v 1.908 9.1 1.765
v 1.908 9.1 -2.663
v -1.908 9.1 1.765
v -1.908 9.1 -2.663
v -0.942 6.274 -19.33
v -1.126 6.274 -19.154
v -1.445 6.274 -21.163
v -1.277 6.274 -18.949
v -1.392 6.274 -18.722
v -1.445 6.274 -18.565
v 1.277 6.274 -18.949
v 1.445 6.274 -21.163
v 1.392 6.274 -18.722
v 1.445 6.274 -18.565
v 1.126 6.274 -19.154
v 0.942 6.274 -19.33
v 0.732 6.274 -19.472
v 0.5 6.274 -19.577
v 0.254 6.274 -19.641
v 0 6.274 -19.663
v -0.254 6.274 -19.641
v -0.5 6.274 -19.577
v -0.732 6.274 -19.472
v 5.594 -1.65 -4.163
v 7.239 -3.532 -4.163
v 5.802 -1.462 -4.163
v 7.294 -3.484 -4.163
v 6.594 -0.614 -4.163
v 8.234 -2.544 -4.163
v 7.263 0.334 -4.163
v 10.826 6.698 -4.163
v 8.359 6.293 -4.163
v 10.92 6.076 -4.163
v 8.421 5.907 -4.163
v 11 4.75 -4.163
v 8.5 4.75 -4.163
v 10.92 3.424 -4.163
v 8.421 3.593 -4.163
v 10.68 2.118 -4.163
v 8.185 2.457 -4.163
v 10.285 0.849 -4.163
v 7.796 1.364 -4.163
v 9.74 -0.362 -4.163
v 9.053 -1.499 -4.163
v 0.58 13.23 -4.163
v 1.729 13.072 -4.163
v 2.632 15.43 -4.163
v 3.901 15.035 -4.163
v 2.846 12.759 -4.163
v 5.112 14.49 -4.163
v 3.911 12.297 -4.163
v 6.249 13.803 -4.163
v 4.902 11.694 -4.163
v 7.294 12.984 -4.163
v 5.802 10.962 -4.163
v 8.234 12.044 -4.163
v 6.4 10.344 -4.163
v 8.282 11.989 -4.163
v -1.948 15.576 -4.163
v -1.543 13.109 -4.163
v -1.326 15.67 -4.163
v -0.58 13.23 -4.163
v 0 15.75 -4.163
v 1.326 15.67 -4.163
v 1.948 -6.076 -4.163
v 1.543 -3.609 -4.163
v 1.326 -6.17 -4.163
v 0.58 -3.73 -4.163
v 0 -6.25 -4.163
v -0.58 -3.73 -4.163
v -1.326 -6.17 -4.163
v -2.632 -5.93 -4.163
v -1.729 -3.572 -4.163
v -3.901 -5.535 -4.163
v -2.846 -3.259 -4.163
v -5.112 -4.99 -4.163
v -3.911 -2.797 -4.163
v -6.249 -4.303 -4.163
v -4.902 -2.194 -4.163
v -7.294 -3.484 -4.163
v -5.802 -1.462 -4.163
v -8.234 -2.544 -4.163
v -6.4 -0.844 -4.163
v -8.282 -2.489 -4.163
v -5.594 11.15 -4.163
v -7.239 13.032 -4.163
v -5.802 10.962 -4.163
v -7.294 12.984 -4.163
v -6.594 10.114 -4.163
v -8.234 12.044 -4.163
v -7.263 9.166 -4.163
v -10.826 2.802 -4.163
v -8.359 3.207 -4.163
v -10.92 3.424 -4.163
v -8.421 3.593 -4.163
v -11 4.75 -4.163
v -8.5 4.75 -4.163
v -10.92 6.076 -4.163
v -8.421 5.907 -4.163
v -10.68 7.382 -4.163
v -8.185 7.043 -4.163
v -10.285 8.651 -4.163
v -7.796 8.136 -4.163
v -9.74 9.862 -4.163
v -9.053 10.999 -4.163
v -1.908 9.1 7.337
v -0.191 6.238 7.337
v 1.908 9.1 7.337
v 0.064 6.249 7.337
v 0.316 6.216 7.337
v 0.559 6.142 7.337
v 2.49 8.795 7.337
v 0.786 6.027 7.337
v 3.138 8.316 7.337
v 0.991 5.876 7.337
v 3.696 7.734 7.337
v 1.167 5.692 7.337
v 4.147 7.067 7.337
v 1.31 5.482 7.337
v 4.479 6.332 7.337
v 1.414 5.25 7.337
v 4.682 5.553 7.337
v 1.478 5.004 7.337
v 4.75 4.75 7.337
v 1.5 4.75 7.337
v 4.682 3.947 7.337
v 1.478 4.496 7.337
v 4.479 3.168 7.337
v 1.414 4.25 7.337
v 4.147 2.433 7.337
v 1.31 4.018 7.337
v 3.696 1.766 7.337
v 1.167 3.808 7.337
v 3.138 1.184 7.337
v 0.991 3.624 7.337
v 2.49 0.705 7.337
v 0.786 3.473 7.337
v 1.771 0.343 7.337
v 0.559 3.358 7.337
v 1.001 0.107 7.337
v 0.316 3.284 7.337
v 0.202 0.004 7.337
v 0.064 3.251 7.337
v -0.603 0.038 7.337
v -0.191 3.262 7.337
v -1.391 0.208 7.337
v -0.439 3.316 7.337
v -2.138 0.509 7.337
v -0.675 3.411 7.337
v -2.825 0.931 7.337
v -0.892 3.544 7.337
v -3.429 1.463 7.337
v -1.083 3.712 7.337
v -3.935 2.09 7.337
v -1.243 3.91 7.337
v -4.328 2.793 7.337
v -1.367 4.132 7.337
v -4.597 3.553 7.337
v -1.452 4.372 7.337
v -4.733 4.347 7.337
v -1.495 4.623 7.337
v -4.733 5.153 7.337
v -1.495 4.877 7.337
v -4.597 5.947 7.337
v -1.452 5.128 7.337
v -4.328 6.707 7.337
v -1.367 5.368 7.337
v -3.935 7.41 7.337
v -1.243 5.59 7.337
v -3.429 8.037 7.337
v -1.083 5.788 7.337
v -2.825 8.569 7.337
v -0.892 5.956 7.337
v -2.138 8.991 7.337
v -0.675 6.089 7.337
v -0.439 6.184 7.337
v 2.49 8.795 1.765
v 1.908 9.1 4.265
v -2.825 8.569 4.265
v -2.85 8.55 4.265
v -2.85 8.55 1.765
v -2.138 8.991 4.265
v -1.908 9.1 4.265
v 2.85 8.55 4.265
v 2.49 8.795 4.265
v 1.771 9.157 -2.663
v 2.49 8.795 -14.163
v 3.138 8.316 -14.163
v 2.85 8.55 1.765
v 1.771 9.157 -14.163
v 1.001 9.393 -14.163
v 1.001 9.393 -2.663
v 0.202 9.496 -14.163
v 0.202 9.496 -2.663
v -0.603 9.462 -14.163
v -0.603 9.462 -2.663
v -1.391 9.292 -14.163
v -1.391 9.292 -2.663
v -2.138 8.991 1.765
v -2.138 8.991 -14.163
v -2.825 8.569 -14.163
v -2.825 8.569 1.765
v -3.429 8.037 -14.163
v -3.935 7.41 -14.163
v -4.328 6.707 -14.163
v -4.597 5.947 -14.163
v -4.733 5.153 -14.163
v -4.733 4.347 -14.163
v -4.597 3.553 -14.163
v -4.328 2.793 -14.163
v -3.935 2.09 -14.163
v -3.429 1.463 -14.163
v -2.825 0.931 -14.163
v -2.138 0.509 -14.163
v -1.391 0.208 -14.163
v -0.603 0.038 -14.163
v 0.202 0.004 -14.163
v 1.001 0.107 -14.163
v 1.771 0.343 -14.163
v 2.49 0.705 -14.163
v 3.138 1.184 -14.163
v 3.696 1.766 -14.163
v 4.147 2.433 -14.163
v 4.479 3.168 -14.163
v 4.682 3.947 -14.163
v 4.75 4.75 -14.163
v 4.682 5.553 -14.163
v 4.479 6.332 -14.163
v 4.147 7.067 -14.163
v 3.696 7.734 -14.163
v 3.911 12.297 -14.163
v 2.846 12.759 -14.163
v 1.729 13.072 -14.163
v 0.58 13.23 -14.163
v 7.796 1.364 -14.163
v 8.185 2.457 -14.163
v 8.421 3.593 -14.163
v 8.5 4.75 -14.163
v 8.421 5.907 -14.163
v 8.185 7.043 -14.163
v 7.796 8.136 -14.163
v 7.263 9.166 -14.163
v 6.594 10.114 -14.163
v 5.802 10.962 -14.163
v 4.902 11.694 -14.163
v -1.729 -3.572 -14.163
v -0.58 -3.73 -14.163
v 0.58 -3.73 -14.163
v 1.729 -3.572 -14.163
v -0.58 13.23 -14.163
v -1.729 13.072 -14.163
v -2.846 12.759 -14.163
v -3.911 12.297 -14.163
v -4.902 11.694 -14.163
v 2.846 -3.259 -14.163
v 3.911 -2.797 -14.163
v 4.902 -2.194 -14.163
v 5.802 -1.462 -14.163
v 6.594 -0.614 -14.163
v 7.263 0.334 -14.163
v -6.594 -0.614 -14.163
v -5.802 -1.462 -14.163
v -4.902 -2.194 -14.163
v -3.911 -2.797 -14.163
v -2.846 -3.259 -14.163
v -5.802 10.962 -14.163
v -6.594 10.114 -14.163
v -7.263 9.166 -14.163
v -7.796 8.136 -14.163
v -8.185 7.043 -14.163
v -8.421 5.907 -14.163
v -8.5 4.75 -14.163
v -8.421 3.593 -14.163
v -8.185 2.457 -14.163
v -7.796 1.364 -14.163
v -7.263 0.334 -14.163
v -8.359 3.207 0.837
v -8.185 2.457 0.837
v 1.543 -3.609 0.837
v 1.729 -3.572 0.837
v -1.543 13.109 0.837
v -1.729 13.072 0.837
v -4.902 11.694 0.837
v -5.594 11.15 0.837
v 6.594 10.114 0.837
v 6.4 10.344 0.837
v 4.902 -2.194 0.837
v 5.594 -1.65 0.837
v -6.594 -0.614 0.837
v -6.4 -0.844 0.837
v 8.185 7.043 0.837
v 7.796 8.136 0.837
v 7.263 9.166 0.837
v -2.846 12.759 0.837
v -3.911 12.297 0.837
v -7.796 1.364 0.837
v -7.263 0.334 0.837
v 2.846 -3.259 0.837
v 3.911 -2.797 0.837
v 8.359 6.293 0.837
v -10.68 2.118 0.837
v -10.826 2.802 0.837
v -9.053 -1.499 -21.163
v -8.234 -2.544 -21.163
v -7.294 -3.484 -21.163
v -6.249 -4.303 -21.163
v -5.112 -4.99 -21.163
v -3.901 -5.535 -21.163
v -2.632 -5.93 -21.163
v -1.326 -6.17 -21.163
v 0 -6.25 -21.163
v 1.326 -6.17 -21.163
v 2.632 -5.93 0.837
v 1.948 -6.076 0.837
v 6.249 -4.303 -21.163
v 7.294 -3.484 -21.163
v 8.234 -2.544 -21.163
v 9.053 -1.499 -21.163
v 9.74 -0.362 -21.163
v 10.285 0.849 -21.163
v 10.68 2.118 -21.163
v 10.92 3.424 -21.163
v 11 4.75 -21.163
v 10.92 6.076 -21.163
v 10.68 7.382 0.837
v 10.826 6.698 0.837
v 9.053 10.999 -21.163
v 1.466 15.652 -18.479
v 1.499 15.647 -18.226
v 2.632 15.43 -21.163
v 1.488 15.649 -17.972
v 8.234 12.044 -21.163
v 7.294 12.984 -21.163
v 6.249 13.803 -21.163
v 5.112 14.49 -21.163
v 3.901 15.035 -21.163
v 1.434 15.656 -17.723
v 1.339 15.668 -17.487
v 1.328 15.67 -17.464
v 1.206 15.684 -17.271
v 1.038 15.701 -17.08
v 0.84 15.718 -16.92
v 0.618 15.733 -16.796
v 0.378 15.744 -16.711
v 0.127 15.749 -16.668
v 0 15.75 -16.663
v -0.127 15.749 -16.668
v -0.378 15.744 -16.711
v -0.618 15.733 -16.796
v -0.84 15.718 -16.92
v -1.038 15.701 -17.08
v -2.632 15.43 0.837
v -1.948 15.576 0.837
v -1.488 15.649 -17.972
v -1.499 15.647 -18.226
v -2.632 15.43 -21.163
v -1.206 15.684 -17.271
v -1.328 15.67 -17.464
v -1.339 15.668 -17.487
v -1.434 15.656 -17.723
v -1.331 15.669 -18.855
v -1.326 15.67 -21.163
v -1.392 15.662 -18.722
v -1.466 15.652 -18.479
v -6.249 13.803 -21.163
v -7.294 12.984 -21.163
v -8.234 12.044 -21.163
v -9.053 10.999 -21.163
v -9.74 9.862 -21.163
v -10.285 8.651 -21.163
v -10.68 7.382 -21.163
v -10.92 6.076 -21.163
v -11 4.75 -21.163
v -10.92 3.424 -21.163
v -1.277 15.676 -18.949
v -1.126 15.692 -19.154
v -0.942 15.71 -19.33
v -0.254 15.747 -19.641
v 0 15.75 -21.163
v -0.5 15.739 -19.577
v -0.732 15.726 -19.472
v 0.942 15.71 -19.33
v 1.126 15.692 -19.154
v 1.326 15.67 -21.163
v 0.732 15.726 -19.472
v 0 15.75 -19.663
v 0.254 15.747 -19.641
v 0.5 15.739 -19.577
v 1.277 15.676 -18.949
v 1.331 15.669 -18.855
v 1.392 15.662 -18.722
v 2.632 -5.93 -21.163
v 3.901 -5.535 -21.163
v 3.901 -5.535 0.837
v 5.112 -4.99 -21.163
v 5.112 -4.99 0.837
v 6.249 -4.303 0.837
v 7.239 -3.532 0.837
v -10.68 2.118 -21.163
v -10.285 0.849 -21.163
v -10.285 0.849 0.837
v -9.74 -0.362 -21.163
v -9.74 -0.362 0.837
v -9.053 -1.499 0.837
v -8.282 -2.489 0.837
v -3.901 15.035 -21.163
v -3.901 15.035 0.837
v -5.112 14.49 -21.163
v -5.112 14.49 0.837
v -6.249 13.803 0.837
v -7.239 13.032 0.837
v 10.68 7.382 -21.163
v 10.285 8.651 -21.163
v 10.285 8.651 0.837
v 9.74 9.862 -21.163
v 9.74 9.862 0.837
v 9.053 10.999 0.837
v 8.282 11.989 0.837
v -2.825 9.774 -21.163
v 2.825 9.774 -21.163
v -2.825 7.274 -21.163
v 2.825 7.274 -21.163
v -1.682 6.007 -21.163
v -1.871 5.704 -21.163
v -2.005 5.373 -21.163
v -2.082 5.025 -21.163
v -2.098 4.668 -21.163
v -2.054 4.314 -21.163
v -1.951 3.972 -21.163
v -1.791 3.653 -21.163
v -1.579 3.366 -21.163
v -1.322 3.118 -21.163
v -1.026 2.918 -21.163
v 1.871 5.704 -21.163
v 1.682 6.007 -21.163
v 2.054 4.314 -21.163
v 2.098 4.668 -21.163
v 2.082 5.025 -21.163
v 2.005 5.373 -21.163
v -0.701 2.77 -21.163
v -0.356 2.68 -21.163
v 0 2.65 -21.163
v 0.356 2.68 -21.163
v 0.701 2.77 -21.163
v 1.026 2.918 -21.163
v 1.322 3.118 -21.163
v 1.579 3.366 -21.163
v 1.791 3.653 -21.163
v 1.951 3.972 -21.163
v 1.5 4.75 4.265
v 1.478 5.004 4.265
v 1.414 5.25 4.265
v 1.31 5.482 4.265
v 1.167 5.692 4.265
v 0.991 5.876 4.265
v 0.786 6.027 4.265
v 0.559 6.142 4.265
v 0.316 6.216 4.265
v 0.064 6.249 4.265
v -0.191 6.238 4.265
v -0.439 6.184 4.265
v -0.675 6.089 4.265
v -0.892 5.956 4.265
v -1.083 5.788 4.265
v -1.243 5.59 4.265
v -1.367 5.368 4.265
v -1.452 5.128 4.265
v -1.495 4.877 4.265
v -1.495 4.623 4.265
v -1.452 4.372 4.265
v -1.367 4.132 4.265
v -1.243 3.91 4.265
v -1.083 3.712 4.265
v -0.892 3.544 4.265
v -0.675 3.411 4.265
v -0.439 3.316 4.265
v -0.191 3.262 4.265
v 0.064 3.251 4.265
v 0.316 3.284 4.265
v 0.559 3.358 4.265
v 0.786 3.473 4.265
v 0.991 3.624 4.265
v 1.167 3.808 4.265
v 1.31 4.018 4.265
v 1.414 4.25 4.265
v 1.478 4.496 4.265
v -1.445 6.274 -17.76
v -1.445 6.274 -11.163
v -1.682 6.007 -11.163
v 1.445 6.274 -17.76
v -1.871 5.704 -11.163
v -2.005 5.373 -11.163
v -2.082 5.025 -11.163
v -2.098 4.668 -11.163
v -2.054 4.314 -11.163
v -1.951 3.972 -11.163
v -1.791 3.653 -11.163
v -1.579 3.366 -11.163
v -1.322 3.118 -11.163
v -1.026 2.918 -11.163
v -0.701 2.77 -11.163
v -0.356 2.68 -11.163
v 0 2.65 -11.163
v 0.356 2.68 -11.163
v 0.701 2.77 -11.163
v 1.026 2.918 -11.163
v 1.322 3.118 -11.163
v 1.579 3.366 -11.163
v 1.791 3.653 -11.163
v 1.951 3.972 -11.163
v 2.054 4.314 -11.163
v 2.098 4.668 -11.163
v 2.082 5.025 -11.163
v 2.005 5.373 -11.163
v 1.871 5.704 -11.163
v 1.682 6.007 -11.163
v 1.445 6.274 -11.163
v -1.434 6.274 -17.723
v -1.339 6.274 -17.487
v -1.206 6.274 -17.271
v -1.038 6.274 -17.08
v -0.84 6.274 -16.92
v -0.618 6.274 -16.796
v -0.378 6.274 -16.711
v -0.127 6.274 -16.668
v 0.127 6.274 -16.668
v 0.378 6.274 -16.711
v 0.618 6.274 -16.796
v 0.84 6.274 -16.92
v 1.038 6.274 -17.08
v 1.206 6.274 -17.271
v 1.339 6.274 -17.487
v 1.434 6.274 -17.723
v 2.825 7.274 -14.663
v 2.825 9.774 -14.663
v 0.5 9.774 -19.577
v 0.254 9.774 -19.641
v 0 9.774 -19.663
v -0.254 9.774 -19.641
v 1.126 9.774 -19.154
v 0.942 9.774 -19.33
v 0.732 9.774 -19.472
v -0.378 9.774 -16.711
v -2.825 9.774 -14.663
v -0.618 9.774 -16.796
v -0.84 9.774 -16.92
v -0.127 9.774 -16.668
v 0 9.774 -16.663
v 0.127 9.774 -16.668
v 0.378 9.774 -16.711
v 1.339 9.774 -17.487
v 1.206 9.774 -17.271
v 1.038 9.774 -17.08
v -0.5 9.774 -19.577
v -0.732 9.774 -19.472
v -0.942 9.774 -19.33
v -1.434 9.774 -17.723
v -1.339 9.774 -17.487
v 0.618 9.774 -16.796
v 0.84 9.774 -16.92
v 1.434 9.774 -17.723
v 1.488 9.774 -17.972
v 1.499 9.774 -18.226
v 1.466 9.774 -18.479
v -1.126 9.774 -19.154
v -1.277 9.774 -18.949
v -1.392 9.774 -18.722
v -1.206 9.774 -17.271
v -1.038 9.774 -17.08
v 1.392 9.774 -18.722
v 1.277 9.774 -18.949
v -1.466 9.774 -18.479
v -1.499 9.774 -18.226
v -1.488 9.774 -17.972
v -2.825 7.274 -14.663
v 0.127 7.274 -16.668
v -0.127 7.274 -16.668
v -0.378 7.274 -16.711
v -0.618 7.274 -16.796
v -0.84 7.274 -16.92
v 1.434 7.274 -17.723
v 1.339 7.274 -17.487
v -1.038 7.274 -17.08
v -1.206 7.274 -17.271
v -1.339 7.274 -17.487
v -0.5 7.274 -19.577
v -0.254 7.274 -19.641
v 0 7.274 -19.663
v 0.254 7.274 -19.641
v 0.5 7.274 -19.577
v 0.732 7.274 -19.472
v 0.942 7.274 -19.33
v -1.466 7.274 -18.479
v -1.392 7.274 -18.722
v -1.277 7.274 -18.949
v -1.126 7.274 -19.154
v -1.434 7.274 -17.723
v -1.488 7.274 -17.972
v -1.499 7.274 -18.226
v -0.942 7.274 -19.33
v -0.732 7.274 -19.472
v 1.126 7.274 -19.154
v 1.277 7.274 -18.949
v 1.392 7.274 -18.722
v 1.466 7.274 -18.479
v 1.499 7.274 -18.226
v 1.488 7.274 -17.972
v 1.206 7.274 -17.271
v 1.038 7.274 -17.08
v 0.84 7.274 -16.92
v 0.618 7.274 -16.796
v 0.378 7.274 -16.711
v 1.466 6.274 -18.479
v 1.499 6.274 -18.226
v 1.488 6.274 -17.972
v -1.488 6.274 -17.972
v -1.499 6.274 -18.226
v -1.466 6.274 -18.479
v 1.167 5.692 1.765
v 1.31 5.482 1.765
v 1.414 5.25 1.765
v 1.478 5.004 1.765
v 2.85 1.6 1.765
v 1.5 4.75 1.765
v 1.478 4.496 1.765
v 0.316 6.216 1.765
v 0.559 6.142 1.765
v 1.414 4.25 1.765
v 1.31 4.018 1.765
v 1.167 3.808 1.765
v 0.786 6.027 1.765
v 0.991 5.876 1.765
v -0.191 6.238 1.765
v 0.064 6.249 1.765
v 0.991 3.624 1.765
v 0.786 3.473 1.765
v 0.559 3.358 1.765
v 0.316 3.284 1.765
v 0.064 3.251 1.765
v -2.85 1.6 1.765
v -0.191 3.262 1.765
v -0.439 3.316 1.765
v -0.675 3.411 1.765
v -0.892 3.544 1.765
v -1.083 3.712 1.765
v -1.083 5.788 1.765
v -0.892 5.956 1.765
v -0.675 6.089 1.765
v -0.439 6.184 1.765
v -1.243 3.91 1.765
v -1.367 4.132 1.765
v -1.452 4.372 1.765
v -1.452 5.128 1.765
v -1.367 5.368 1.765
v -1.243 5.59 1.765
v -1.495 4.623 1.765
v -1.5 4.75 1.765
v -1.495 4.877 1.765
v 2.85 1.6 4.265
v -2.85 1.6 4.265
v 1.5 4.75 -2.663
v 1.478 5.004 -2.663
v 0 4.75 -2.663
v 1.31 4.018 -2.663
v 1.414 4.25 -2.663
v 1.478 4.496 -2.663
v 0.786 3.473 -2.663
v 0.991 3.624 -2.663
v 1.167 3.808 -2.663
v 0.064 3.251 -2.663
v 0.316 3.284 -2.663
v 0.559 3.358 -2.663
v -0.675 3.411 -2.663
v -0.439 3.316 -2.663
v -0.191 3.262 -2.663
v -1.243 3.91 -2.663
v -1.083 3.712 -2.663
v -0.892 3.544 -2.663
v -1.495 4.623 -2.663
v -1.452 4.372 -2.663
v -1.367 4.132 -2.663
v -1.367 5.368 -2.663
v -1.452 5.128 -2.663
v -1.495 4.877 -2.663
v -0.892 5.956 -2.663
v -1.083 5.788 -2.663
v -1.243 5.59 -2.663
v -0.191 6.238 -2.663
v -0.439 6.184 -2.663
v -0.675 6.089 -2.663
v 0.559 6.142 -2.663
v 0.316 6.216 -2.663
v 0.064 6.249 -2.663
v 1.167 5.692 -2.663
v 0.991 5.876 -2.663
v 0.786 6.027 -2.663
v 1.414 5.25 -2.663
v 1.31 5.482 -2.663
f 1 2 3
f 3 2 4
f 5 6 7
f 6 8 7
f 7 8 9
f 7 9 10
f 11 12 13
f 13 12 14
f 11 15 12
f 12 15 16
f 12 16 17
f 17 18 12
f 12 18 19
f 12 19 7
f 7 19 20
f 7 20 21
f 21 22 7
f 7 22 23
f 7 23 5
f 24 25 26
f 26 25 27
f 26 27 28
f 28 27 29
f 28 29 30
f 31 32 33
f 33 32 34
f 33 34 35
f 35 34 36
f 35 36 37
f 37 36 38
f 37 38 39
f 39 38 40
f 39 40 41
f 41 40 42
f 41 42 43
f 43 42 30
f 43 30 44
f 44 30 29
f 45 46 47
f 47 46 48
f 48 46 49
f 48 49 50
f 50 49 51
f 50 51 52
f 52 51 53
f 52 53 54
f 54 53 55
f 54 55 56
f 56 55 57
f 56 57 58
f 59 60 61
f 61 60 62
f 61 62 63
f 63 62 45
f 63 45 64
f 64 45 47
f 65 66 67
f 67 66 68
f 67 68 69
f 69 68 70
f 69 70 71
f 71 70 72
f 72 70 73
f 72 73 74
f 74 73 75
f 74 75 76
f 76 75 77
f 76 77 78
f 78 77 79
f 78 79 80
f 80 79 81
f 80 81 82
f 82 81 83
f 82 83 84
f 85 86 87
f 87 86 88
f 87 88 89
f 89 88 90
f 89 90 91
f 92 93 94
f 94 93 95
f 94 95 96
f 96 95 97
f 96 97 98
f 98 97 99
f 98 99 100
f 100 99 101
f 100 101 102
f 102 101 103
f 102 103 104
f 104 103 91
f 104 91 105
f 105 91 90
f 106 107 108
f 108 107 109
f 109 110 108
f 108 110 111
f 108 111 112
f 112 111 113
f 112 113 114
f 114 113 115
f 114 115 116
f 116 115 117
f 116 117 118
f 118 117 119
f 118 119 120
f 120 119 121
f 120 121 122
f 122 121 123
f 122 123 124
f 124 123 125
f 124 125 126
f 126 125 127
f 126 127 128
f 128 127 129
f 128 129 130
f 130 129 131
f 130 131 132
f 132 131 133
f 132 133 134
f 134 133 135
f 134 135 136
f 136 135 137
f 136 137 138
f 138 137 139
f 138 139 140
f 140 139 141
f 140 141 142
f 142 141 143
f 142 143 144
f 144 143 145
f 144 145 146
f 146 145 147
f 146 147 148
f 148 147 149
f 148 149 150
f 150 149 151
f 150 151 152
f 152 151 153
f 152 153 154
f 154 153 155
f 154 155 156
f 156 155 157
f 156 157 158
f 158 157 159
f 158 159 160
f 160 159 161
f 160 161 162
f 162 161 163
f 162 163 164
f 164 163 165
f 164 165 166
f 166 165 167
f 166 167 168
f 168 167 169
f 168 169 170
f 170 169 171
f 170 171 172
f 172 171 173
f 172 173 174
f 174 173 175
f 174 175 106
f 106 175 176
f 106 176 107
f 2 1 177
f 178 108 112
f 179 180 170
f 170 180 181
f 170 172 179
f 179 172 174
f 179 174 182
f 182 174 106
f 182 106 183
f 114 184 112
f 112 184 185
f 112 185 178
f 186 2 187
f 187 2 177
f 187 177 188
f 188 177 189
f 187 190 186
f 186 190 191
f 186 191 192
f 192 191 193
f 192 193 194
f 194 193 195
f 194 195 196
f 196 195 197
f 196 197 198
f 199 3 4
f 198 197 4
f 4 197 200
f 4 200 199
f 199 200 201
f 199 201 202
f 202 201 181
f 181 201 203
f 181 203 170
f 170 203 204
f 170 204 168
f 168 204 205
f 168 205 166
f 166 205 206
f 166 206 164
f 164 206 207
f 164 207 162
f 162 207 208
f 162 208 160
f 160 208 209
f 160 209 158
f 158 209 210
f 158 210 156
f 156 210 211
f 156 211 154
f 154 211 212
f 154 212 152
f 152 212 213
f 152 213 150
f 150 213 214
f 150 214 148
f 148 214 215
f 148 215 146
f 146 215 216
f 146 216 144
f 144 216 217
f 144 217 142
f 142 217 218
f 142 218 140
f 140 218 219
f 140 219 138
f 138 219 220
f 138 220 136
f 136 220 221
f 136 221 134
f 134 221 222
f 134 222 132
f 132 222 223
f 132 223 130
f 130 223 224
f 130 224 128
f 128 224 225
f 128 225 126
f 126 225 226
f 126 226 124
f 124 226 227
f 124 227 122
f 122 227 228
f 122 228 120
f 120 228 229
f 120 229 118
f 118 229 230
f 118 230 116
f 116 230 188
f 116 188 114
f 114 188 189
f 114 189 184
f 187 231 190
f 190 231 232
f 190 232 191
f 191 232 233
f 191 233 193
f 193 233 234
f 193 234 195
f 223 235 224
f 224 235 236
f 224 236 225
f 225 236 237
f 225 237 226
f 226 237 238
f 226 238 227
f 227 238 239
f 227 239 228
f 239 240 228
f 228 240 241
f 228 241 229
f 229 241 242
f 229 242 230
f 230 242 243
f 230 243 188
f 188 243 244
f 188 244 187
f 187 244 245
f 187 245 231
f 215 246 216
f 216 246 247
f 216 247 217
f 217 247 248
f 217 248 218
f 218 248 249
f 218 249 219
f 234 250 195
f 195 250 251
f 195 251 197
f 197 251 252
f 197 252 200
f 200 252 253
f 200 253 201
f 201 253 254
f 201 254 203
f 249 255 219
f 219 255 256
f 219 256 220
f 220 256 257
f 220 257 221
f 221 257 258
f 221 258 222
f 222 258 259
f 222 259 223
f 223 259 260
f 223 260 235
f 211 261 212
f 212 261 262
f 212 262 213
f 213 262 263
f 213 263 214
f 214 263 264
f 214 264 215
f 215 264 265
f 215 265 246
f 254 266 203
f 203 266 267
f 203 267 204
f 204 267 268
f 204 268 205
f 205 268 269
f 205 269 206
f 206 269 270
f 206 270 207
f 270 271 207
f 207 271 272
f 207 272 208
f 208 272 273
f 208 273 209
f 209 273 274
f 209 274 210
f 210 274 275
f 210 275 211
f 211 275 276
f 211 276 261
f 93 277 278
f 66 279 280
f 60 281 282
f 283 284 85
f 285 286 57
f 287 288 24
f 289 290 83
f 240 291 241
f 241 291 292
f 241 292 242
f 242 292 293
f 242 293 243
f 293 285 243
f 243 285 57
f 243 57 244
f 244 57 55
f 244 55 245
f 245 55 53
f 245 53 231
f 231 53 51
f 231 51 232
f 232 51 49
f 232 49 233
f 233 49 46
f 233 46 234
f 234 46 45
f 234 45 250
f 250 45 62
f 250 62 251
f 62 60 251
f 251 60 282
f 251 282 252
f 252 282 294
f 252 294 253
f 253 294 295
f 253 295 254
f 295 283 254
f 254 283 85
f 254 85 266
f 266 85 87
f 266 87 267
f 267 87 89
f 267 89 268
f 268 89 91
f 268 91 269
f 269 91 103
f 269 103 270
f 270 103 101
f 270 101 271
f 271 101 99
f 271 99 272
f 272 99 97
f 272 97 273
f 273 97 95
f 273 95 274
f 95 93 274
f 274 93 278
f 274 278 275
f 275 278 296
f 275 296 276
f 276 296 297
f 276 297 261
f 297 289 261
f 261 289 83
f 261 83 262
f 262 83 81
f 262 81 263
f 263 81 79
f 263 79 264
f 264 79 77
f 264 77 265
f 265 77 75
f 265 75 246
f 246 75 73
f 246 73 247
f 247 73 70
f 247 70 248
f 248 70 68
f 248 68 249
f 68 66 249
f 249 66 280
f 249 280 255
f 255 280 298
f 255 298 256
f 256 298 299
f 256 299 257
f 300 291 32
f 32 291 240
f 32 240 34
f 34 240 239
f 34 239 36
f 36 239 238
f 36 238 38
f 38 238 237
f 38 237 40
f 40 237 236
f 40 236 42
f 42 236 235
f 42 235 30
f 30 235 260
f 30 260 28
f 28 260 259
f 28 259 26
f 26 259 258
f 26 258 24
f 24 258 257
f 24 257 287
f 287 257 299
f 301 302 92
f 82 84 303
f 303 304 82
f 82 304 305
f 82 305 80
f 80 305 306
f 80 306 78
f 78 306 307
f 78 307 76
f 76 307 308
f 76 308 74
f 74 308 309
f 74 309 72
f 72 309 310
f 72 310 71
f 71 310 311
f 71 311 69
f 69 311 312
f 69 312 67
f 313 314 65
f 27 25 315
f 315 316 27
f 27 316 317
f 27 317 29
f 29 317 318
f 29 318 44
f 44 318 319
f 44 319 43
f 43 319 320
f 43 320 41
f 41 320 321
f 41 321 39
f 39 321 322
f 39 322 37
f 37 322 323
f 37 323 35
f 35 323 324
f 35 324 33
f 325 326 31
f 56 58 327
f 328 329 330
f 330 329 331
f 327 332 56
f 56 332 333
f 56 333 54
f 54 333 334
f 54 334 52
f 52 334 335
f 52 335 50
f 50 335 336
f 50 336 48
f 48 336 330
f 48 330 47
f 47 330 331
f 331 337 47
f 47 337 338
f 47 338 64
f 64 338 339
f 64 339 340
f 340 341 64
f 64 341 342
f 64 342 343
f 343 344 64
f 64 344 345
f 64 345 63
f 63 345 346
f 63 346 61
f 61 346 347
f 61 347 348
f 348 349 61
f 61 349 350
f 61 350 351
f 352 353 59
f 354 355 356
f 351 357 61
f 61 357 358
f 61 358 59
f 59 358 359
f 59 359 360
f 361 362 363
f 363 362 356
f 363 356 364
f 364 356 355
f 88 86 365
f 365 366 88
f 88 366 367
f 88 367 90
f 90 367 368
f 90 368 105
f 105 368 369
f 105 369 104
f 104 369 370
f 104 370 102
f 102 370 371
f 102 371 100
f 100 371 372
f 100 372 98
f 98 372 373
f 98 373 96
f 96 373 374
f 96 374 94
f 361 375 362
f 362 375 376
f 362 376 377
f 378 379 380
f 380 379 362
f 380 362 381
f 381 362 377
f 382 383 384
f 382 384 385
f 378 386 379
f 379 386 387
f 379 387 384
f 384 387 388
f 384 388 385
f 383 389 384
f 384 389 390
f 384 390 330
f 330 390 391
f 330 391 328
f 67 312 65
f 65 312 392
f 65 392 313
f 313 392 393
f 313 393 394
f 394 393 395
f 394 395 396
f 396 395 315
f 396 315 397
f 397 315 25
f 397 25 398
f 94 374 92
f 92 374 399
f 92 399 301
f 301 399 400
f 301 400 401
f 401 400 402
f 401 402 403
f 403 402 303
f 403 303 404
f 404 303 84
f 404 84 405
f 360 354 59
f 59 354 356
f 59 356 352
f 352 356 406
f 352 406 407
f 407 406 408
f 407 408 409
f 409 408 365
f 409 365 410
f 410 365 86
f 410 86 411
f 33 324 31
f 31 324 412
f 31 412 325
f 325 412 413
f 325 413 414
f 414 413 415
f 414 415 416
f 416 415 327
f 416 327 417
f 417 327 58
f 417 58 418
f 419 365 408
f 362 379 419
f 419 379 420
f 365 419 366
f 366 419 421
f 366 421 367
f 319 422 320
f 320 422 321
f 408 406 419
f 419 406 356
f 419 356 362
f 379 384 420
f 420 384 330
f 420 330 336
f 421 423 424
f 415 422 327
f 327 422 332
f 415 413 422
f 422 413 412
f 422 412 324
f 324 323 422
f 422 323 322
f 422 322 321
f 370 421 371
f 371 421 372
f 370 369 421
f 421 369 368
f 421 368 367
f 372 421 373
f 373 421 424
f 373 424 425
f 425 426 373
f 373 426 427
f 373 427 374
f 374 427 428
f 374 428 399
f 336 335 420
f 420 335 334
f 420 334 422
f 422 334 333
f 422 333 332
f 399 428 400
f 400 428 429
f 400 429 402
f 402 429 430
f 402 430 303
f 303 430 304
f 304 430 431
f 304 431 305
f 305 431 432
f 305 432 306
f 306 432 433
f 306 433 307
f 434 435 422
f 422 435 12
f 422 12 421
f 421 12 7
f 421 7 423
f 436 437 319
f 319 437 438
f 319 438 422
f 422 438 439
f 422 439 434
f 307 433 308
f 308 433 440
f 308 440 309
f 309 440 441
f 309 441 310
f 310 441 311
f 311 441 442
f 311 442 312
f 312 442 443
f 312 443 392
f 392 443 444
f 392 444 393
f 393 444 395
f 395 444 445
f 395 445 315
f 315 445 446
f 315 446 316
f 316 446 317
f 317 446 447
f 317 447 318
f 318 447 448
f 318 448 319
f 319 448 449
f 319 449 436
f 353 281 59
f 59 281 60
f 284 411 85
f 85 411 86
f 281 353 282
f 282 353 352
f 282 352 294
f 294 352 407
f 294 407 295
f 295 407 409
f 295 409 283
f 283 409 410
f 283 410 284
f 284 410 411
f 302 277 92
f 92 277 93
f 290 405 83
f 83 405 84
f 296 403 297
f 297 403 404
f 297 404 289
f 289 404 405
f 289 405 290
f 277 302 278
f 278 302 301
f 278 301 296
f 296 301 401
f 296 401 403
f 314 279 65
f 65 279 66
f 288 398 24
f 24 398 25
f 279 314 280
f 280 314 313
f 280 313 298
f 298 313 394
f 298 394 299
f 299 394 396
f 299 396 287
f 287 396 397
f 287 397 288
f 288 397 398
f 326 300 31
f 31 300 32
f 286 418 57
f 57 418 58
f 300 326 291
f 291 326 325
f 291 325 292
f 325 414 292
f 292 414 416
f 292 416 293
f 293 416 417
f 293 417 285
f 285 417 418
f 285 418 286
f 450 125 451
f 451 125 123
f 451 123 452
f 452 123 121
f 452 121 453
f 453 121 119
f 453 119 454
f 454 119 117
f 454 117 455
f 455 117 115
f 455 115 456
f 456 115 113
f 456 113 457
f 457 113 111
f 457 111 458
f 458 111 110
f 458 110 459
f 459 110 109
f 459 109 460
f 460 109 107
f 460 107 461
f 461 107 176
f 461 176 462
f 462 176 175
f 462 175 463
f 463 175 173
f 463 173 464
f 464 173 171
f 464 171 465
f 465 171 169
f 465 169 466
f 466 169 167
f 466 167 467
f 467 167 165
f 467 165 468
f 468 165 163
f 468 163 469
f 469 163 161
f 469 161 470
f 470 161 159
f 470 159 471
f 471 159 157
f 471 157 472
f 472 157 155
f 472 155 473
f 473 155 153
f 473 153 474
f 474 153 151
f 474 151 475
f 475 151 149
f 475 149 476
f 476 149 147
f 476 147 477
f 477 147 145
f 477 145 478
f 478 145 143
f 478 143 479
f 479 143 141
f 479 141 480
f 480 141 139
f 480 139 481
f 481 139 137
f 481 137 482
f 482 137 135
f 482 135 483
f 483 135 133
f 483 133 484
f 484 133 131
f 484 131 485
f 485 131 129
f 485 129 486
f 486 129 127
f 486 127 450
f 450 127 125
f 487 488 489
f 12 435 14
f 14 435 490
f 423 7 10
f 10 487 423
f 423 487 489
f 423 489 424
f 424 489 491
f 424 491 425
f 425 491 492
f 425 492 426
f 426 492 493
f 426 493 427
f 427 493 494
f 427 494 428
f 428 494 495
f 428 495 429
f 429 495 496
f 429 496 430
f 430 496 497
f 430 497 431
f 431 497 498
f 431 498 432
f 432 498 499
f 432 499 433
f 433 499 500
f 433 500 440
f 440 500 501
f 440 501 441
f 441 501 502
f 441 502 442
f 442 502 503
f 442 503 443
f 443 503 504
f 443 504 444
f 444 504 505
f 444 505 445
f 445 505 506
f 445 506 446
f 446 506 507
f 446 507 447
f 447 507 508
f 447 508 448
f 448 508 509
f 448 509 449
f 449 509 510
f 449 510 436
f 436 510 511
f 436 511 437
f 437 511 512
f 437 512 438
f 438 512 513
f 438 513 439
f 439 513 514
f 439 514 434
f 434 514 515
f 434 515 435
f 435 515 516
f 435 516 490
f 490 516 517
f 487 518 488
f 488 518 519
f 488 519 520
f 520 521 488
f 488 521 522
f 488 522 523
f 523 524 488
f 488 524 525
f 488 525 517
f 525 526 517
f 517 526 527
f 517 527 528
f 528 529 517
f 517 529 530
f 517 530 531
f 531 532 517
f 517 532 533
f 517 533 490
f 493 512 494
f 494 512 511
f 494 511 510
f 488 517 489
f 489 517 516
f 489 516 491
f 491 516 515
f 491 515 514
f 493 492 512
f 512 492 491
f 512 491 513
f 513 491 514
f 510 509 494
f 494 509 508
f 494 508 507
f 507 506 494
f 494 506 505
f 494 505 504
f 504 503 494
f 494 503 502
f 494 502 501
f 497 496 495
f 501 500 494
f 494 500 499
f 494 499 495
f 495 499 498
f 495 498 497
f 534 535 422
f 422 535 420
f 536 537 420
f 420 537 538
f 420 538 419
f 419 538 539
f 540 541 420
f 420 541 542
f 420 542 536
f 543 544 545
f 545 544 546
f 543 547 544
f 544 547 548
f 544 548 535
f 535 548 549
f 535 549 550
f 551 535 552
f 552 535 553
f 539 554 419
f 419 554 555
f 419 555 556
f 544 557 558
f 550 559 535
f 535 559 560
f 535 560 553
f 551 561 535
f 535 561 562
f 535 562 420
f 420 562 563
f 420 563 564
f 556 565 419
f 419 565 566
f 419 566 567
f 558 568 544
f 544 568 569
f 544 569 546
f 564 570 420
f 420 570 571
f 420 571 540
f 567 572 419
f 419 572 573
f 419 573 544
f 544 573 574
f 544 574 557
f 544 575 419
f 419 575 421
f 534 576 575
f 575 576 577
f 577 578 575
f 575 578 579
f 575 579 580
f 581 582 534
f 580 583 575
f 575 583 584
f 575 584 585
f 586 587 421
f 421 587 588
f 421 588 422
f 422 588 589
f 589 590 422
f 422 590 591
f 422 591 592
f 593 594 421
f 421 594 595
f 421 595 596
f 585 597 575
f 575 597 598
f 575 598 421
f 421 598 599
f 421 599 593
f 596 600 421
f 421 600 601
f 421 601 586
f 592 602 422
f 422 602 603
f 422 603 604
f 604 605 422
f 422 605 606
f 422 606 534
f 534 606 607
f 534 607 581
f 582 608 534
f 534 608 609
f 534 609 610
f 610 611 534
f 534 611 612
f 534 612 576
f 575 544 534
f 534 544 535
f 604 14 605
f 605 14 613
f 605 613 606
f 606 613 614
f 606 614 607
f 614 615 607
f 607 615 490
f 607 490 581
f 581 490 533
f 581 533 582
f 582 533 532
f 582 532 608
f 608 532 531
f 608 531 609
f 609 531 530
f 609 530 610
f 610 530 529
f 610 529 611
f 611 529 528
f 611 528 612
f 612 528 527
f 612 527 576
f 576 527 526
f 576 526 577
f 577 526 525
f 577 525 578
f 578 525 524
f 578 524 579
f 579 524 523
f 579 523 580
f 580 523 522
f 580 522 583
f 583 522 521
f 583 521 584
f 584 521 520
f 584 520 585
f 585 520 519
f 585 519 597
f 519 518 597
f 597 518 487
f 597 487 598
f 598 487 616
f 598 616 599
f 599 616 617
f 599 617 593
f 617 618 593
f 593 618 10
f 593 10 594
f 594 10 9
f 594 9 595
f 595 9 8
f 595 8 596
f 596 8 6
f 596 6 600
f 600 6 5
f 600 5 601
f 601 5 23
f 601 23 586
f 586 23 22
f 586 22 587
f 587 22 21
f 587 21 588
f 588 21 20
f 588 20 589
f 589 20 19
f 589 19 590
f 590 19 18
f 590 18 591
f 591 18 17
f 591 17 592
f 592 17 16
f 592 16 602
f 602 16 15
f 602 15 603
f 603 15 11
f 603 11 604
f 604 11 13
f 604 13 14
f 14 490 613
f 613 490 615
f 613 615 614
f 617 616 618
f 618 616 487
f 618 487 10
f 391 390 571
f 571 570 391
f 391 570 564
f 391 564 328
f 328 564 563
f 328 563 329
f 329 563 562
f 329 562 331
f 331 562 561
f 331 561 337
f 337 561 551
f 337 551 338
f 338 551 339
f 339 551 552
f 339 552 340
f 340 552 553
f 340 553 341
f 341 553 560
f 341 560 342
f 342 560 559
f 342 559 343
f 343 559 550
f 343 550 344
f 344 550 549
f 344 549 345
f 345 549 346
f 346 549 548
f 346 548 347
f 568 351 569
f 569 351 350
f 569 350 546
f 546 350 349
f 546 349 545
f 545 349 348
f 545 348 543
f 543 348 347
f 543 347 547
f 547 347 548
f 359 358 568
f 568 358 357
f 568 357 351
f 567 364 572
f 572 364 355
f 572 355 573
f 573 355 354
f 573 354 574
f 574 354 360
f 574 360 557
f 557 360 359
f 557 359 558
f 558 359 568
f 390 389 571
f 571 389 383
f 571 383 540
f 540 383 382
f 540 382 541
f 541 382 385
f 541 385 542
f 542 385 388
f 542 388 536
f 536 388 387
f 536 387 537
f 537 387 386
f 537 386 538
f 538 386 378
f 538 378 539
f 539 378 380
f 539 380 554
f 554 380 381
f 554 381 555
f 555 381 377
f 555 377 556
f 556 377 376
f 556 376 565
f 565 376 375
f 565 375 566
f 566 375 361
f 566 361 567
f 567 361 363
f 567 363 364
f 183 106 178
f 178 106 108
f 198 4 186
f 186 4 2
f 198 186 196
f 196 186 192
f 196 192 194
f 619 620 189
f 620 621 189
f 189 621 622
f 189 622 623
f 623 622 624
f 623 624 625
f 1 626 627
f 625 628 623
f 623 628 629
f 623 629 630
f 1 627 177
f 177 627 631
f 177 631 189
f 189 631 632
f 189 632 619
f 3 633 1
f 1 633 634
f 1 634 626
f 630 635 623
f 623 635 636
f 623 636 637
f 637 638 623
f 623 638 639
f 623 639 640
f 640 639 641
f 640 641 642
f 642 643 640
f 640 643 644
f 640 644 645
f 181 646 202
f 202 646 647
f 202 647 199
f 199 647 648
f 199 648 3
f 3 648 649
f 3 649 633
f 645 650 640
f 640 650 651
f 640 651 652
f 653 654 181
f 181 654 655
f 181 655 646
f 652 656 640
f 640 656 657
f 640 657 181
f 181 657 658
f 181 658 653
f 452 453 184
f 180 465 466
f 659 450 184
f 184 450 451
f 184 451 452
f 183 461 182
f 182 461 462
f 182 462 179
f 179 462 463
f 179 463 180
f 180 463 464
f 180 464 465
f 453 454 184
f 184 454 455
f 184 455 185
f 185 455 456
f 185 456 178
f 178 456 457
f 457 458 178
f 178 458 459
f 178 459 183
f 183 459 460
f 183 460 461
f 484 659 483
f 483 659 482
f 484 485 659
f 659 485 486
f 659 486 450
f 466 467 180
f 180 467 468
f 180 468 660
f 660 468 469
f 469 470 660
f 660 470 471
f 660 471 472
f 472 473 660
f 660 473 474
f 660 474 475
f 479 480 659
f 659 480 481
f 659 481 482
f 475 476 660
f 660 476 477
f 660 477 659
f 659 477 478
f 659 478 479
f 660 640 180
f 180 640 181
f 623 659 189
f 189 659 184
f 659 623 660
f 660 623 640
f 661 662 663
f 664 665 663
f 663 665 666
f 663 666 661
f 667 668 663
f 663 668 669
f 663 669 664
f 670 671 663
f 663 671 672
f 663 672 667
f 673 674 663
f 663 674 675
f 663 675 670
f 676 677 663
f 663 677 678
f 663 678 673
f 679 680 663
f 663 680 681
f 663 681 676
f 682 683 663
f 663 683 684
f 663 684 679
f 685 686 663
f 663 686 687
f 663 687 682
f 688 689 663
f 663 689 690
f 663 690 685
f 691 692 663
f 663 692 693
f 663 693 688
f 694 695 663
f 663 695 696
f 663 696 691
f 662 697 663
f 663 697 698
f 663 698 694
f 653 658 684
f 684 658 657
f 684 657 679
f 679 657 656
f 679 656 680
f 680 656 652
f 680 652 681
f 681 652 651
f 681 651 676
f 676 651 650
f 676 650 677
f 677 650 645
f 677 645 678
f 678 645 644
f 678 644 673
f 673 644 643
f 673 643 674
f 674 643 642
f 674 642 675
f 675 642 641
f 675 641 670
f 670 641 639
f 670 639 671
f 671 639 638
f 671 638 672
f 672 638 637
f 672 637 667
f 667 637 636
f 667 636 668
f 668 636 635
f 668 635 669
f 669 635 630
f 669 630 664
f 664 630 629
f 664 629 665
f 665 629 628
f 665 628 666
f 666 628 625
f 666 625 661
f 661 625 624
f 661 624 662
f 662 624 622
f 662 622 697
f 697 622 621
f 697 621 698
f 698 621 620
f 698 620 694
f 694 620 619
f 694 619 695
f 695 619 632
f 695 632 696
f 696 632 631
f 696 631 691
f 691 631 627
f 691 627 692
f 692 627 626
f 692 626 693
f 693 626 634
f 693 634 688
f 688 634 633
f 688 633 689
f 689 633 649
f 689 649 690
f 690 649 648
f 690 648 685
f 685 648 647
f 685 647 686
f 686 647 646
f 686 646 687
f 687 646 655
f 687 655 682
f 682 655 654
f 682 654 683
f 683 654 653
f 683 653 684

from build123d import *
from build123d.topology import SkipClean

# Parameters (mm, degrees)
BOSS_EXTRUDE2_DEPTH = 5
CIRPATTERN1_COUNT   = 4
SKETCH5_R           = 1.5
CUT_EXTRUDE1_DEPTH  = 10
CUT_EXTRUDE2_DEPTH  = 10
SKETCH8_W           = 5.65
SKETCH8_H           = 2.5
CUT_EXTRUDE3_DEPTH  = 6.5
SKETCH10_R          = 1.5
CUT_EXTRUDE5_DEPTH  = 10
CUT_EXTRUDE6_START  = -10
CUT_EXTRUDE6_DEPTH  = 10
SKETCH13_W          = 5.7
SKETCH13_H          = 2.5
CUT_EXTRUDE7_DEPTH  = 7.5


with BuildPart() as part:
    # Sketch3 → Revolve1 (revolve)
    with BuildSketch(Plane(origin=(0, 0, 0), x_dir=(0, 0, -1), z_dir=(1, 0, 0)), mode=Mode.PRIVATE) as revolve1_sk:
        Polygon((-7.337359925, 0), (14.162640075, 0), (14.162640075, -3.75), (4.162640075, -3.75), (4.162640075, -6.25), (16.162640075, -6.25), (21.162640075, -6.25), (21.162640075, -3.047373414), (21.162640075, 4.75), (19.162640075, 4.75), (-7.337359925, 4.75), align=None)
    revolve(revolve1_sk.sketch.rotate(Axis((0, 4.75, 26.894611834), (0, 0, -1)), 270), axis=Axis((0, 4.75, 26.894611834), (0, 0, -1)))

    # Sketch4 → Boss-Extrude2 (add)
    with SkipClean():  # the faces are left unmerged after this step: merging them gives an invalid solid
        with BuildSketch(Plane.XY.offset(-4.162640075)):
            with BuildLine():
                Line((-1.948133817, 15.576115399), (-1.542950524, 13.108786017))
                ThreePointArc((-1.542950524, 13.108786017), (-3.700532064, 12.402193309), (-5.594111688, 11.149680807))
                Line((-5.594111688, 11.149680807), (-7.239438655, 13.031939867))
                ThreePointArc((-7.239438655, 13.031939867), (-4.766663326, 14.663572552), (-1.948133817, 15.576115399))
            make_face()
        boss_extrude2 = extrude(amount=BOSS_EXTRUDE2_DEPTH)

    # CirPattern1: Boss-Extrude2 ×4 about axis
    with SkipClean():  # the faces are left unmerged after this step: merging them gives an invalid solid
        cirpattern1_axis = Axis((0, 4.75, 0), (0, 0, 1))
        for i in range(1, CIRPATTERN1_COUNT):
            add(boss_extrude2.rotate(cirpattern1_axis, i * 360 / CIRPATTERN1_COUNT))

    # Sketch5 → Cut-Extrude1 (cut)
    with SkipClean():  # the faces are left unmerged after this step: merging them gives an invalid solid
        with BuildSketch(Plane.XY.offset(7.337359925)):
            with Locations((0, 4.75)):
                Circle(SKETCH5_R)
        extrude(amount=-CUT_EXTRUDE1_DEPTH, mode=Mode.SUBTRACT)

    # Sketch7 → Cut-Extrude2 (cut)
    with SkipClean():  # the faces are left unmerged after this step: merging them gives an invalid solid
        with BuildSketch(Plane(origin=(0, 0, -21.162640075), x_dir=(-1, 0, 0), z_dir=(0, 0, -1))):
            with BuildLine():
                Line((-1.445, 6.273802809), (1.445, 6.273802809))
                ThreePointArc((1.445, 6.273802809), (0, 2.65), (-1.445, 6.273802809))
            make_face()
        extrude(amount=-CUT_EXTRUDE2_DEPTH, mode=Mode.SUBTRACT)

    # Sketch8 → Cut-Extrude3 (cut)
    with SkipClean():  # the faces are left unmerged after this step: merging them gives an invalid solid
        with BuildSketch(Plane(origin=(0, 0, -21.162640075), x_dir=(-1, 0, 0), z_dir=(0, 0, -1))):
            with Locations((0, 8.523802809)):
                Rectangle(SKETCH8_W, SKETCH8_H)
        extrude(amount=-CUT_EXTRUDE3_DEPTH, mode=Mode.SUBTRACT)

    # Sketch10 → Cut-Extrude5 (cut)
    with SkipClean():  # the faces are left unmerged after this step: merging them gives an invalid solid
        with BuildSketch(Plane.XZ.offset(-6.273802809)):
            with Locations(Location((0, -18.162640075, 0), (0, 0, 270))):
                Circle(SKETCH10_R)
        extrude(amount=-CUT_EXTRUDE5_DEPTH, mode=Mode.SUBTRACT)

    # Sketch12 → Cut-Extrude6 (cut)
    with SkipClean():  # the faces are left unmerged after this step: merging them gives an invalid solid
        with BuildSketch(Plane.XY.offset(7.337359925).offset(CUT_EXTRUDE6_START)):
            with BuildLine():
                Line((-1.907535842, 9.100150229), (1.907535842, 9.100150229))
                ThreePointArc((1.907535842, 9.100150229), (0, 9.5), (-1.907535842, 9.100150229))
            make_face()
        extrude(amount=CUT_EXTRUDE6_DEPTH, mode=Mode.SUBTRACT)

    # Sketch13 → Cut-Extrude7 (cut)
    with SkipClean():  # the faces are left unmerged after this step: merging them gives an invalid solid
        with BuildSketch(Plane(origin=(0, 9.100150229, 0), x_dir=(1, 0, 0), z_dir=(0, 1, 0))):
            with Locations((0, -3.015381777)):
                Rectangle(SKETCH13_W, SKETCH13_H)
        extrude(amount=-CUT_EXTRUDE7_DEPTH, mode=Mode.SUBTRACT)


solid = part.part
